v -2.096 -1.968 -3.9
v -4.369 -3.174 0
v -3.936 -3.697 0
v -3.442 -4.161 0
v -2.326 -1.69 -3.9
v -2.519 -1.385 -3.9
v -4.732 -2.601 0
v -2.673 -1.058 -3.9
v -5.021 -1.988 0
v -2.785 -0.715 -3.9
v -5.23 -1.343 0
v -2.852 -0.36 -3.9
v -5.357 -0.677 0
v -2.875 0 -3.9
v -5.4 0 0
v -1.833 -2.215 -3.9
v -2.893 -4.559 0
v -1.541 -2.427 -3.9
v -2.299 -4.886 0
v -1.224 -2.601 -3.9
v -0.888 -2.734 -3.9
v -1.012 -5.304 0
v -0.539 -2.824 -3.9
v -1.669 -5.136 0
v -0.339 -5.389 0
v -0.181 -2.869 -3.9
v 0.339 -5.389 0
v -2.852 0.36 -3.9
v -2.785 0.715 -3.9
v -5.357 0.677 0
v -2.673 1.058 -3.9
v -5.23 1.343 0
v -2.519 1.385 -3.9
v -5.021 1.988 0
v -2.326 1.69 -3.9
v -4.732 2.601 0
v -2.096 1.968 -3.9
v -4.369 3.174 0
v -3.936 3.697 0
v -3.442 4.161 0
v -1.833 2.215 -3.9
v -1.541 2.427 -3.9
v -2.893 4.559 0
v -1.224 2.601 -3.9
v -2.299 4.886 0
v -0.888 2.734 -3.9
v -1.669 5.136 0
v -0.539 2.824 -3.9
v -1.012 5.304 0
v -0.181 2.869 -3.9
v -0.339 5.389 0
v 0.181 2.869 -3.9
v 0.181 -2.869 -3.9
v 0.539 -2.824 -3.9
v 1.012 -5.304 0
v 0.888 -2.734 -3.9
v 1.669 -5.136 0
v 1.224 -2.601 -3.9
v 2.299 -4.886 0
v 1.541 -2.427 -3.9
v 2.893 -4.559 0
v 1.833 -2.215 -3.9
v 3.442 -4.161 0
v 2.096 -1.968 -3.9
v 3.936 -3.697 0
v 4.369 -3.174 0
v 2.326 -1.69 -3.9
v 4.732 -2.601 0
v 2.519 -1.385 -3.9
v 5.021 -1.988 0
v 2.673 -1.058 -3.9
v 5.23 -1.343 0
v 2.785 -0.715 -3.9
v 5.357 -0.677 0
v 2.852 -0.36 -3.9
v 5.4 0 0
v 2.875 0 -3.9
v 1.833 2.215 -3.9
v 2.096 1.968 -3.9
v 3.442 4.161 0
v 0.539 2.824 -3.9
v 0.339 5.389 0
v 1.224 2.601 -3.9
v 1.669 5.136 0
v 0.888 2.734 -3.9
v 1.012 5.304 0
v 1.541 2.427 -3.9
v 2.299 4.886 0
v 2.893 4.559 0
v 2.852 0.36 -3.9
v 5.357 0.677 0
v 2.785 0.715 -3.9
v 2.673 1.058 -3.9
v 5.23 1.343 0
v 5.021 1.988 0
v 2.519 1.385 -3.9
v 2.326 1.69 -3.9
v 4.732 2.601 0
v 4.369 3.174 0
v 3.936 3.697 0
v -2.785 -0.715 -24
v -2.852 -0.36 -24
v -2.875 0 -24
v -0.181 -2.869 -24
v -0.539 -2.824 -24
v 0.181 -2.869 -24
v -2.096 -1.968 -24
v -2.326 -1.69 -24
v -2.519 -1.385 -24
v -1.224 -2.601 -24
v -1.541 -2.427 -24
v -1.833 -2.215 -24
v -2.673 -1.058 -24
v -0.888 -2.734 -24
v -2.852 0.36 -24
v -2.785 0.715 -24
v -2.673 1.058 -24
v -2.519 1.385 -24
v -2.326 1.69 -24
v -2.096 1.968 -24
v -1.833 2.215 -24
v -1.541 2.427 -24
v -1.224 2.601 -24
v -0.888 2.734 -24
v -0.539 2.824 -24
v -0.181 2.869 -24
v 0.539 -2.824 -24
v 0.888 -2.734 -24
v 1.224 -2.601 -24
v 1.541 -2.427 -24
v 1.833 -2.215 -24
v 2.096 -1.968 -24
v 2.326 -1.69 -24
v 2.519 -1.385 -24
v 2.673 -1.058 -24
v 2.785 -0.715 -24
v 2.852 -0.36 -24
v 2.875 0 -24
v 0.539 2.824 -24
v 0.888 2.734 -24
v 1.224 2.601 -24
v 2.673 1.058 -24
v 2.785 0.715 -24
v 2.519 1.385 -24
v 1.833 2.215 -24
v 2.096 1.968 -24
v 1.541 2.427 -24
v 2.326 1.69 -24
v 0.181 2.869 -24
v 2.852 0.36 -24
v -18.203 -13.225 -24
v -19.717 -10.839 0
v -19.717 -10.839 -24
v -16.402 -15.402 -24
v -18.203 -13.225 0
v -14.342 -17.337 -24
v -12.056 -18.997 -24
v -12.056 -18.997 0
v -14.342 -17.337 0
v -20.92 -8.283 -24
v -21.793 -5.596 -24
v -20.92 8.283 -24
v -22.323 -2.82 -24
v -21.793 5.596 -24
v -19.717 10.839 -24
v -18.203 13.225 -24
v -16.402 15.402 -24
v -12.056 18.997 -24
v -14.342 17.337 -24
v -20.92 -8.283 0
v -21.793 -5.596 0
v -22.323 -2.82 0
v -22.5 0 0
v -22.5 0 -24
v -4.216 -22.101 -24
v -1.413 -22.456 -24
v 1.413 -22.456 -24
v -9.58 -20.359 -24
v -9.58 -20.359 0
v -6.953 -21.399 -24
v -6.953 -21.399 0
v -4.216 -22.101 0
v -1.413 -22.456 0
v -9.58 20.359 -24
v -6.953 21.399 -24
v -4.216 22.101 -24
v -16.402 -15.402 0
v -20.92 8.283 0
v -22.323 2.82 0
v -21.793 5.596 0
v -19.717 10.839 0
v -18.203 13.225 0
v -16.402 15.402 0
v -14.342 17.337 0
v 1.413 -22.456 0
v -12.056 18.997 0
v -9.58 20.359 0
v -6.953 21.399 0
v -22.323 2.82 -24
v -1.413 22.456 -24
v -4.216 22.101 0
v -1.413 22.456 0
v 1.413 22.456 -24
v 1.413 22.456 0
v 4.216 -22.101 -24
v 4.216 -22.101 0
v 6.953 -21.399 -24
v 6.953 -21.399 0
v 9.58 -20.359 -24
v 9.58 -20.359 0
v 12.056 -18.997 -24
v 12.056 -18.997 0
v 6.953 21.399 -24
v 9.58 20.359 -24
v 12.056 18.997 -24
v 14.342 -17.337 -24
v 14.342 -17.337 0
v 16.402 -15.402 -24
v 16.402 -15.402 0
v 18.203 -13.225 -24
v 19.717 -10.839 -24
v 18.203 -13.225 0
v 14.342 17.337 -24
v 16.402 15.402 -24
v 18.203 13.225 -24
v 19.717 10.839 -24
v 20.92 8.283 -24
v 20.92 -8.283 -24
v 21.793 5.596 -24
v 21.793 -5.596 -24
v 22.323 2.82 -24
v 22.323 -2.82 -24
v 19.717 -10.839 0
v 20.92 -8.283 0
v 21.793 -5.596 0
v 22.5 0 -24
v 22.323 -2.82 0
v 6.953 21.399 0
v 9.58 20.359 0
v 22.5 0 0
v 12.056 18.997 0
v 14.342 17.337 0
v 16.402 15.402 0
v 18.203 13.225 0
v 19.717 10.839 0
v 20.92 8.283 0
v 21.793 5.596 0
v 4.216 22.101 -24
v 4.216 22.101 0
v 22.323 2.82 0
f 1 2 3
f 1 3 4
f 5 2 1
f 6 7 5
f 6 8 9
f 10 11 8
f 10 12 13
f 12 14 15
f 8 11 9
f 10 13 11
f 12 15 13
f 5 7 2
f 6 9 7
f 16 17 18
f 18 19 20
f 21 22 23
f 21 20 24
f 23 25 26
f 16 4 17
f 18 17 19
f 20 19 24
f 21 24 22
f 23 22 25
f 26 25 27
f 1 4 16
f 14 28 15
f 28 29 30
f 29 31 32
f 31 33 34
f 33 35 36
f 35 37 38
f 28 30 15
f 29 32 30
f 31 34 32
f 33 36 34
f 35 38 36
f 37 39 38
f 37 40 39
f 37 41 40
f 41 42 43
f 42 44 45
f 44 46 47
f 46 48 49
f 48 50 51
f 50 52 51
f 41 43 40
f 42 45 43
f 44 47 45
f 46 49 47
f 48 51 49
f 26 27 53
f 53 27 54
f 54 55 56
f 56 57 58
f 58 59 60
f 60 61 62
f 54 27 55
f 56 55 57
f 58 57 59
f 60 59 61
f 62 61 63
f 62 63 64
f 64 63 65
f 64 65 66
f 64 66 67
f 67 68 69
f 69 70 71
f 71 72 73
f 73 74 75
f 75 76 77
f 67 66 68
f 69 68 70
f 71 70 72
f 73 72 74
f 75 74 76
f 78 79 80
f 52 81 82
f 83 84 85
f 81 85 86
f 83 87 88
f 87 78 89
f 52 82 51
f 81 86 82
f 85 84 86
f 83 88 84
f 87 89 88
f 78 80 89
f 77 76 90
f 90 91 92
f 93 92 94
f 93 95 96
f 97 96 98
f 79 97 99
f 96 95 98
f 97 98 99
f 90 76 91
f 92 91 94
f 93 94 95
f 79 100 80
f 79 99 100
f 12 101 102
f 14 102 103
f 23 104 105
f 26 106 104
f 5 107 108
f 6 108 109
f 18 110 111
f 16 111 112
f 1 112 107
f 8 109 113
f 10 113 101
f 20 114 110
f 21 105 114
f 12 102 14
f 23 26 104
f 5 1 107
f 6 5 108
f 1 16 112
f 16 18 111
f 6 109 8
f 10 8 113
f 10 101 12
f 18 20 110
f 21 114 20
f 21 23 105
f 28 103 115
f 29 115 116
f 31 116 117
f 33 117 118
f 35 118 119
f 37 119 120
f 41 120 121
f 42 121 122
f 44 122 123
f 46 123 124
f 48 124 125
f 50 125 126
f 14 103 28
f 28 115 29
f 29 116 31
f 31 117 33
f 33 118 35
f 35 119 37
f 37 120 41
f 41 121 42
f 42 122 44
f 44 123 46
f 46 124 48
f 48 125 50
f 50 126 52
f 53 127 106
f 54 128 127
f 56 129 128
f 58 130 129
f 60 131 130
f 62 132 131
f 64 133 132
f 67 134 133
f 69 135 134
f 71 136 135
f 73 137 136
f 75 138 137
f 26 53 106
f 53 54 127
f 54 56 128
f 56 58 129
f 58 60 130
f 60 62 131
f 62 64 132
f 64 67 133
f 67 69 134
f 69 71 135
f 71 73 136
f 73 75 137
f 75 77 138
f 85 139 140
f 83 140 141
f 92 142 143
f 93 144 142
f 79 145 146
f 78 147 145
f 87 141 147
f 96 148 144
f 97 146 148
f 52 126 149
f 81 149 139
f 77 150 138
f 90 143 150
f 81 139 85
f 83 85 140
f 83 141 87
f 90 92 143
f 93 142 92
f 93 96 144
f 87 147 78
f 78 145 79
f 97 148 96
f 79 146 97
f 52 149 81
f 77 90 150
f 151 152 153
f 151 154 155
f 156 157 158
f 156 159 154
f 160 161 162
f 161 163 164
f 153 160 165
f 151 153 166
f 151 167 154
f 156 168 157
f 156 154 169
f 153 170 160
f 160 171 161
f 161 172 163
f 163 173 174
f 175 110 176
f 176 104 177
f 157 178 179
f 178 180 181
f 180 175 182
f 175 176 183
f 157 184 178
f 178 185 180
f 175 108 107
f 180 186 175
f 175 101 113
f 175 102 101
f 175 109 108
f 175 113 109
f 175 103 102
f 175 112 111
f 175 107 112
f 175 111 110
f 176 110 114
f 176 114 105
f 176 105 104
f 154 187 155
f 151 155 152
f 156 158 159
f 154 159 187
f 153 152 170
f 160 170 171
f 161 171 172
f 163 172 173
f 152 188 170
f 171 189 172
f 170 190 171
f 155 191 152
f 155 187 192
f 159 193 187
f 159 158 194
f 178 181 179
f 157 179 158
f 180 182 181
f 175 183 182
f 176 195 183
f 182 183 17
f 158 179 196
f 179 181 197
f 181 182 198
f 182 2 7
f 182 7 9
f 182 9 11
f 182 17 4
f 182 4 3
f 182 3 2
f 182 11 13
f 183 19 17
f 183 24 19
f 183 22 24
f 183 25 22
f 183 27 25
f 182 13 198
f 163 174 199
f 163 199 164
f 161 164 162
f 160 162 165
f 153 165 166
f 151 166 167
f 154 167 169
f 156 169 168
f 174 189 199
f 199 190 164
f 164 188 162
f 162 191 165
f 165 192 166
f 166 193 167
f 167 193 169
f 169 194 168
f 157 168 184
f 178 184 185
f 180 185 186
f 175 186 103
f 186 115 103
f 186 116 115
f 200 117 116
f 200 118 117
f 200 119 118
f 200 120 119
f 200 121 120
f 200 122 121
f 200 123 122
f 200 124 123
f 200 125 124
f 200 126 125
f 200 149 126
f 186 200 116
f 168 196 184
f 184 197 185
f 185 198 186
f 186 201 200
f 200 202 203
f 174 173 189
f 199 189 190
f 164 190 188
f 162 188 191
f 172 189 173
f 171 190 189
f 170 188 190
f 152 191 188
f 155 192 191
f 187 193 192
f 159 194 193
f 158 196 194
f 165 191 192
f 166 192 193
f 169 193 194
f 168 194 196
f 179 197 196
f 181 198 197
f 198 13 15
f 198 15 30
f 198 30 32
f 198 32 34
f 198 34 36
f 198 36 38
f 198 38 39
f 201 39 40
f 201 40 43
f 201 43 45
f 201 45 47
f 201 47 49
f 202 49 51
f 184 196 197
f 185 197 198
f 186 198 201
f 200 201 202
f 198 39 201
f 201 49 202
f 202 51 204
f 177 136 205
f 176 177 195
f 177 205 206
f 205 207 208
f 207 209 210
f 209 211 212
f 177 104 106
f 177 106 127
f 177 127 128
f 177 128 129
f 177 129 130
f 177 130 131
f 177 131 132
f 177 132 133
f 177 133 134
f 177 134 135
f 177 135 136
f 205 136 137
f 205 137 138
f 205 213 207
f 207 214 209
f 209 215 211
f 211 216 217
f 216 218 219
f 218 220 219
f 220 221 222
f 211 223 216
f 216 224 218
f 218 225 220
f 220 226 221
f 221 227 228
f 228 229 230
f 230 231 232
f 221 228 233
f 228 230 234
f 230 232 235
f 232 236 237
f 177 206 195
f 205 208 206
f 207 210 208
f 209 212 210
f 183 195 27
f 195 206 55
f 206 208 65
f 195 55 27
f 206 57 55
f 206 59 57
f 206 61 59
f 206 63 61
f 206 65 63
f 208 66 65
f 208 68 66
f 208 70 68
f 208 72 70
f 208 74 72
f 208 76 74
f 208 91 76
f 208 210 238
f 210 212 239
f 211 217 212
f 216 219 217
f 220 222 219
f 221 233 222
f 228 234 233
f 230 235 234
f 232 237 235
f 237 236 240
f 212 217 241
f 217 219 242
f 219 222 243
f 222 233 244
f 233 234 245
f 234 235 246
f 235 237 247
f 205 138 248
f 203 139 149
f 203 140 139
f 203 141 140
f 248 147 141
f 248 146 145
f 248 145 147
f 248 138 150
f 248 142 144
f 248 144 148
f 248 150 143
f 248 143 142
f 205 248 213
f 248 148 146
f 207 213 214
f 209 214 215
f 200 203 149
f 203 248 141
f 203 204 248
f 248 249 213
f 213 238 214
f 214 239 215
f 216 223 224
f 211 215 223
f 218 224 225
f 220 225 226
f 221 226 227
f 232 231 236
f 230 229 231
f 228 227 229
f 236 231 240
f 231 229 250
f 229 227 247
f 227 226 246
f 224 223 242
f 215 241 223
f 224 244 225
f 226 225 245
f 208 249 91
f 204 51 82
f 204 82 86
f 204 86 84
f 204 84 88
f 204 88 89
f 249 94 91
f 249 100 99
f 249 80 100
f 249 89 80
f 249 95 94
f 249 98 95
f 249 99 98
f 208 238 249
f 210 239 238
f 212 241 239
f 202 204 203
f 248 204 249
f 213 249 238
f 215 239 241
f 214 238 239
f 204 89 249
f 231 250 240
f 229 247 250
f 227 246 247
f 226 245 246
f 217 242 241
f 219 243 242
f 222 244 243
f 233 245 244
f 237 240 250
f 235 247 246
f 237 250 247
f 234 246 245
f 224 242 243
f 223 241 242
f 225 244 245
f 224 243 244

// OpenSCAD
$fn = 50;


difference() {
	union() {
		translate(v = [0, 0, -24.0000000000]) {
			cylinder(h = 24, r = 22.5000000000);
		}
	}
	union() {
		translate(v = [0, 0, 0]) {
			rotate(a = [0, 0, 0]) {
				difference() {
					union() {
						translate(v = [0, 0, -27.0000000000]) {
							cylinder(h = 27, r = 2.6000000000);
						}
						translate(v = [0, 0, -3.9000000000]) {
							cylinder(h = 3.9000000000, r1 = 2.8750000000, r2 = 5.4000000000);
						}
						translate(v = [0, 0, -27.0000000000]) {
							cylinder(h = 27, r = 2.8750000000);
						}
						translate(v = [0, 0, -27.0000000000]) {
							cylinder(h = 27, r = 2.6000000000);
						}
					}
					union();
				}
			}
		}
	}
}
